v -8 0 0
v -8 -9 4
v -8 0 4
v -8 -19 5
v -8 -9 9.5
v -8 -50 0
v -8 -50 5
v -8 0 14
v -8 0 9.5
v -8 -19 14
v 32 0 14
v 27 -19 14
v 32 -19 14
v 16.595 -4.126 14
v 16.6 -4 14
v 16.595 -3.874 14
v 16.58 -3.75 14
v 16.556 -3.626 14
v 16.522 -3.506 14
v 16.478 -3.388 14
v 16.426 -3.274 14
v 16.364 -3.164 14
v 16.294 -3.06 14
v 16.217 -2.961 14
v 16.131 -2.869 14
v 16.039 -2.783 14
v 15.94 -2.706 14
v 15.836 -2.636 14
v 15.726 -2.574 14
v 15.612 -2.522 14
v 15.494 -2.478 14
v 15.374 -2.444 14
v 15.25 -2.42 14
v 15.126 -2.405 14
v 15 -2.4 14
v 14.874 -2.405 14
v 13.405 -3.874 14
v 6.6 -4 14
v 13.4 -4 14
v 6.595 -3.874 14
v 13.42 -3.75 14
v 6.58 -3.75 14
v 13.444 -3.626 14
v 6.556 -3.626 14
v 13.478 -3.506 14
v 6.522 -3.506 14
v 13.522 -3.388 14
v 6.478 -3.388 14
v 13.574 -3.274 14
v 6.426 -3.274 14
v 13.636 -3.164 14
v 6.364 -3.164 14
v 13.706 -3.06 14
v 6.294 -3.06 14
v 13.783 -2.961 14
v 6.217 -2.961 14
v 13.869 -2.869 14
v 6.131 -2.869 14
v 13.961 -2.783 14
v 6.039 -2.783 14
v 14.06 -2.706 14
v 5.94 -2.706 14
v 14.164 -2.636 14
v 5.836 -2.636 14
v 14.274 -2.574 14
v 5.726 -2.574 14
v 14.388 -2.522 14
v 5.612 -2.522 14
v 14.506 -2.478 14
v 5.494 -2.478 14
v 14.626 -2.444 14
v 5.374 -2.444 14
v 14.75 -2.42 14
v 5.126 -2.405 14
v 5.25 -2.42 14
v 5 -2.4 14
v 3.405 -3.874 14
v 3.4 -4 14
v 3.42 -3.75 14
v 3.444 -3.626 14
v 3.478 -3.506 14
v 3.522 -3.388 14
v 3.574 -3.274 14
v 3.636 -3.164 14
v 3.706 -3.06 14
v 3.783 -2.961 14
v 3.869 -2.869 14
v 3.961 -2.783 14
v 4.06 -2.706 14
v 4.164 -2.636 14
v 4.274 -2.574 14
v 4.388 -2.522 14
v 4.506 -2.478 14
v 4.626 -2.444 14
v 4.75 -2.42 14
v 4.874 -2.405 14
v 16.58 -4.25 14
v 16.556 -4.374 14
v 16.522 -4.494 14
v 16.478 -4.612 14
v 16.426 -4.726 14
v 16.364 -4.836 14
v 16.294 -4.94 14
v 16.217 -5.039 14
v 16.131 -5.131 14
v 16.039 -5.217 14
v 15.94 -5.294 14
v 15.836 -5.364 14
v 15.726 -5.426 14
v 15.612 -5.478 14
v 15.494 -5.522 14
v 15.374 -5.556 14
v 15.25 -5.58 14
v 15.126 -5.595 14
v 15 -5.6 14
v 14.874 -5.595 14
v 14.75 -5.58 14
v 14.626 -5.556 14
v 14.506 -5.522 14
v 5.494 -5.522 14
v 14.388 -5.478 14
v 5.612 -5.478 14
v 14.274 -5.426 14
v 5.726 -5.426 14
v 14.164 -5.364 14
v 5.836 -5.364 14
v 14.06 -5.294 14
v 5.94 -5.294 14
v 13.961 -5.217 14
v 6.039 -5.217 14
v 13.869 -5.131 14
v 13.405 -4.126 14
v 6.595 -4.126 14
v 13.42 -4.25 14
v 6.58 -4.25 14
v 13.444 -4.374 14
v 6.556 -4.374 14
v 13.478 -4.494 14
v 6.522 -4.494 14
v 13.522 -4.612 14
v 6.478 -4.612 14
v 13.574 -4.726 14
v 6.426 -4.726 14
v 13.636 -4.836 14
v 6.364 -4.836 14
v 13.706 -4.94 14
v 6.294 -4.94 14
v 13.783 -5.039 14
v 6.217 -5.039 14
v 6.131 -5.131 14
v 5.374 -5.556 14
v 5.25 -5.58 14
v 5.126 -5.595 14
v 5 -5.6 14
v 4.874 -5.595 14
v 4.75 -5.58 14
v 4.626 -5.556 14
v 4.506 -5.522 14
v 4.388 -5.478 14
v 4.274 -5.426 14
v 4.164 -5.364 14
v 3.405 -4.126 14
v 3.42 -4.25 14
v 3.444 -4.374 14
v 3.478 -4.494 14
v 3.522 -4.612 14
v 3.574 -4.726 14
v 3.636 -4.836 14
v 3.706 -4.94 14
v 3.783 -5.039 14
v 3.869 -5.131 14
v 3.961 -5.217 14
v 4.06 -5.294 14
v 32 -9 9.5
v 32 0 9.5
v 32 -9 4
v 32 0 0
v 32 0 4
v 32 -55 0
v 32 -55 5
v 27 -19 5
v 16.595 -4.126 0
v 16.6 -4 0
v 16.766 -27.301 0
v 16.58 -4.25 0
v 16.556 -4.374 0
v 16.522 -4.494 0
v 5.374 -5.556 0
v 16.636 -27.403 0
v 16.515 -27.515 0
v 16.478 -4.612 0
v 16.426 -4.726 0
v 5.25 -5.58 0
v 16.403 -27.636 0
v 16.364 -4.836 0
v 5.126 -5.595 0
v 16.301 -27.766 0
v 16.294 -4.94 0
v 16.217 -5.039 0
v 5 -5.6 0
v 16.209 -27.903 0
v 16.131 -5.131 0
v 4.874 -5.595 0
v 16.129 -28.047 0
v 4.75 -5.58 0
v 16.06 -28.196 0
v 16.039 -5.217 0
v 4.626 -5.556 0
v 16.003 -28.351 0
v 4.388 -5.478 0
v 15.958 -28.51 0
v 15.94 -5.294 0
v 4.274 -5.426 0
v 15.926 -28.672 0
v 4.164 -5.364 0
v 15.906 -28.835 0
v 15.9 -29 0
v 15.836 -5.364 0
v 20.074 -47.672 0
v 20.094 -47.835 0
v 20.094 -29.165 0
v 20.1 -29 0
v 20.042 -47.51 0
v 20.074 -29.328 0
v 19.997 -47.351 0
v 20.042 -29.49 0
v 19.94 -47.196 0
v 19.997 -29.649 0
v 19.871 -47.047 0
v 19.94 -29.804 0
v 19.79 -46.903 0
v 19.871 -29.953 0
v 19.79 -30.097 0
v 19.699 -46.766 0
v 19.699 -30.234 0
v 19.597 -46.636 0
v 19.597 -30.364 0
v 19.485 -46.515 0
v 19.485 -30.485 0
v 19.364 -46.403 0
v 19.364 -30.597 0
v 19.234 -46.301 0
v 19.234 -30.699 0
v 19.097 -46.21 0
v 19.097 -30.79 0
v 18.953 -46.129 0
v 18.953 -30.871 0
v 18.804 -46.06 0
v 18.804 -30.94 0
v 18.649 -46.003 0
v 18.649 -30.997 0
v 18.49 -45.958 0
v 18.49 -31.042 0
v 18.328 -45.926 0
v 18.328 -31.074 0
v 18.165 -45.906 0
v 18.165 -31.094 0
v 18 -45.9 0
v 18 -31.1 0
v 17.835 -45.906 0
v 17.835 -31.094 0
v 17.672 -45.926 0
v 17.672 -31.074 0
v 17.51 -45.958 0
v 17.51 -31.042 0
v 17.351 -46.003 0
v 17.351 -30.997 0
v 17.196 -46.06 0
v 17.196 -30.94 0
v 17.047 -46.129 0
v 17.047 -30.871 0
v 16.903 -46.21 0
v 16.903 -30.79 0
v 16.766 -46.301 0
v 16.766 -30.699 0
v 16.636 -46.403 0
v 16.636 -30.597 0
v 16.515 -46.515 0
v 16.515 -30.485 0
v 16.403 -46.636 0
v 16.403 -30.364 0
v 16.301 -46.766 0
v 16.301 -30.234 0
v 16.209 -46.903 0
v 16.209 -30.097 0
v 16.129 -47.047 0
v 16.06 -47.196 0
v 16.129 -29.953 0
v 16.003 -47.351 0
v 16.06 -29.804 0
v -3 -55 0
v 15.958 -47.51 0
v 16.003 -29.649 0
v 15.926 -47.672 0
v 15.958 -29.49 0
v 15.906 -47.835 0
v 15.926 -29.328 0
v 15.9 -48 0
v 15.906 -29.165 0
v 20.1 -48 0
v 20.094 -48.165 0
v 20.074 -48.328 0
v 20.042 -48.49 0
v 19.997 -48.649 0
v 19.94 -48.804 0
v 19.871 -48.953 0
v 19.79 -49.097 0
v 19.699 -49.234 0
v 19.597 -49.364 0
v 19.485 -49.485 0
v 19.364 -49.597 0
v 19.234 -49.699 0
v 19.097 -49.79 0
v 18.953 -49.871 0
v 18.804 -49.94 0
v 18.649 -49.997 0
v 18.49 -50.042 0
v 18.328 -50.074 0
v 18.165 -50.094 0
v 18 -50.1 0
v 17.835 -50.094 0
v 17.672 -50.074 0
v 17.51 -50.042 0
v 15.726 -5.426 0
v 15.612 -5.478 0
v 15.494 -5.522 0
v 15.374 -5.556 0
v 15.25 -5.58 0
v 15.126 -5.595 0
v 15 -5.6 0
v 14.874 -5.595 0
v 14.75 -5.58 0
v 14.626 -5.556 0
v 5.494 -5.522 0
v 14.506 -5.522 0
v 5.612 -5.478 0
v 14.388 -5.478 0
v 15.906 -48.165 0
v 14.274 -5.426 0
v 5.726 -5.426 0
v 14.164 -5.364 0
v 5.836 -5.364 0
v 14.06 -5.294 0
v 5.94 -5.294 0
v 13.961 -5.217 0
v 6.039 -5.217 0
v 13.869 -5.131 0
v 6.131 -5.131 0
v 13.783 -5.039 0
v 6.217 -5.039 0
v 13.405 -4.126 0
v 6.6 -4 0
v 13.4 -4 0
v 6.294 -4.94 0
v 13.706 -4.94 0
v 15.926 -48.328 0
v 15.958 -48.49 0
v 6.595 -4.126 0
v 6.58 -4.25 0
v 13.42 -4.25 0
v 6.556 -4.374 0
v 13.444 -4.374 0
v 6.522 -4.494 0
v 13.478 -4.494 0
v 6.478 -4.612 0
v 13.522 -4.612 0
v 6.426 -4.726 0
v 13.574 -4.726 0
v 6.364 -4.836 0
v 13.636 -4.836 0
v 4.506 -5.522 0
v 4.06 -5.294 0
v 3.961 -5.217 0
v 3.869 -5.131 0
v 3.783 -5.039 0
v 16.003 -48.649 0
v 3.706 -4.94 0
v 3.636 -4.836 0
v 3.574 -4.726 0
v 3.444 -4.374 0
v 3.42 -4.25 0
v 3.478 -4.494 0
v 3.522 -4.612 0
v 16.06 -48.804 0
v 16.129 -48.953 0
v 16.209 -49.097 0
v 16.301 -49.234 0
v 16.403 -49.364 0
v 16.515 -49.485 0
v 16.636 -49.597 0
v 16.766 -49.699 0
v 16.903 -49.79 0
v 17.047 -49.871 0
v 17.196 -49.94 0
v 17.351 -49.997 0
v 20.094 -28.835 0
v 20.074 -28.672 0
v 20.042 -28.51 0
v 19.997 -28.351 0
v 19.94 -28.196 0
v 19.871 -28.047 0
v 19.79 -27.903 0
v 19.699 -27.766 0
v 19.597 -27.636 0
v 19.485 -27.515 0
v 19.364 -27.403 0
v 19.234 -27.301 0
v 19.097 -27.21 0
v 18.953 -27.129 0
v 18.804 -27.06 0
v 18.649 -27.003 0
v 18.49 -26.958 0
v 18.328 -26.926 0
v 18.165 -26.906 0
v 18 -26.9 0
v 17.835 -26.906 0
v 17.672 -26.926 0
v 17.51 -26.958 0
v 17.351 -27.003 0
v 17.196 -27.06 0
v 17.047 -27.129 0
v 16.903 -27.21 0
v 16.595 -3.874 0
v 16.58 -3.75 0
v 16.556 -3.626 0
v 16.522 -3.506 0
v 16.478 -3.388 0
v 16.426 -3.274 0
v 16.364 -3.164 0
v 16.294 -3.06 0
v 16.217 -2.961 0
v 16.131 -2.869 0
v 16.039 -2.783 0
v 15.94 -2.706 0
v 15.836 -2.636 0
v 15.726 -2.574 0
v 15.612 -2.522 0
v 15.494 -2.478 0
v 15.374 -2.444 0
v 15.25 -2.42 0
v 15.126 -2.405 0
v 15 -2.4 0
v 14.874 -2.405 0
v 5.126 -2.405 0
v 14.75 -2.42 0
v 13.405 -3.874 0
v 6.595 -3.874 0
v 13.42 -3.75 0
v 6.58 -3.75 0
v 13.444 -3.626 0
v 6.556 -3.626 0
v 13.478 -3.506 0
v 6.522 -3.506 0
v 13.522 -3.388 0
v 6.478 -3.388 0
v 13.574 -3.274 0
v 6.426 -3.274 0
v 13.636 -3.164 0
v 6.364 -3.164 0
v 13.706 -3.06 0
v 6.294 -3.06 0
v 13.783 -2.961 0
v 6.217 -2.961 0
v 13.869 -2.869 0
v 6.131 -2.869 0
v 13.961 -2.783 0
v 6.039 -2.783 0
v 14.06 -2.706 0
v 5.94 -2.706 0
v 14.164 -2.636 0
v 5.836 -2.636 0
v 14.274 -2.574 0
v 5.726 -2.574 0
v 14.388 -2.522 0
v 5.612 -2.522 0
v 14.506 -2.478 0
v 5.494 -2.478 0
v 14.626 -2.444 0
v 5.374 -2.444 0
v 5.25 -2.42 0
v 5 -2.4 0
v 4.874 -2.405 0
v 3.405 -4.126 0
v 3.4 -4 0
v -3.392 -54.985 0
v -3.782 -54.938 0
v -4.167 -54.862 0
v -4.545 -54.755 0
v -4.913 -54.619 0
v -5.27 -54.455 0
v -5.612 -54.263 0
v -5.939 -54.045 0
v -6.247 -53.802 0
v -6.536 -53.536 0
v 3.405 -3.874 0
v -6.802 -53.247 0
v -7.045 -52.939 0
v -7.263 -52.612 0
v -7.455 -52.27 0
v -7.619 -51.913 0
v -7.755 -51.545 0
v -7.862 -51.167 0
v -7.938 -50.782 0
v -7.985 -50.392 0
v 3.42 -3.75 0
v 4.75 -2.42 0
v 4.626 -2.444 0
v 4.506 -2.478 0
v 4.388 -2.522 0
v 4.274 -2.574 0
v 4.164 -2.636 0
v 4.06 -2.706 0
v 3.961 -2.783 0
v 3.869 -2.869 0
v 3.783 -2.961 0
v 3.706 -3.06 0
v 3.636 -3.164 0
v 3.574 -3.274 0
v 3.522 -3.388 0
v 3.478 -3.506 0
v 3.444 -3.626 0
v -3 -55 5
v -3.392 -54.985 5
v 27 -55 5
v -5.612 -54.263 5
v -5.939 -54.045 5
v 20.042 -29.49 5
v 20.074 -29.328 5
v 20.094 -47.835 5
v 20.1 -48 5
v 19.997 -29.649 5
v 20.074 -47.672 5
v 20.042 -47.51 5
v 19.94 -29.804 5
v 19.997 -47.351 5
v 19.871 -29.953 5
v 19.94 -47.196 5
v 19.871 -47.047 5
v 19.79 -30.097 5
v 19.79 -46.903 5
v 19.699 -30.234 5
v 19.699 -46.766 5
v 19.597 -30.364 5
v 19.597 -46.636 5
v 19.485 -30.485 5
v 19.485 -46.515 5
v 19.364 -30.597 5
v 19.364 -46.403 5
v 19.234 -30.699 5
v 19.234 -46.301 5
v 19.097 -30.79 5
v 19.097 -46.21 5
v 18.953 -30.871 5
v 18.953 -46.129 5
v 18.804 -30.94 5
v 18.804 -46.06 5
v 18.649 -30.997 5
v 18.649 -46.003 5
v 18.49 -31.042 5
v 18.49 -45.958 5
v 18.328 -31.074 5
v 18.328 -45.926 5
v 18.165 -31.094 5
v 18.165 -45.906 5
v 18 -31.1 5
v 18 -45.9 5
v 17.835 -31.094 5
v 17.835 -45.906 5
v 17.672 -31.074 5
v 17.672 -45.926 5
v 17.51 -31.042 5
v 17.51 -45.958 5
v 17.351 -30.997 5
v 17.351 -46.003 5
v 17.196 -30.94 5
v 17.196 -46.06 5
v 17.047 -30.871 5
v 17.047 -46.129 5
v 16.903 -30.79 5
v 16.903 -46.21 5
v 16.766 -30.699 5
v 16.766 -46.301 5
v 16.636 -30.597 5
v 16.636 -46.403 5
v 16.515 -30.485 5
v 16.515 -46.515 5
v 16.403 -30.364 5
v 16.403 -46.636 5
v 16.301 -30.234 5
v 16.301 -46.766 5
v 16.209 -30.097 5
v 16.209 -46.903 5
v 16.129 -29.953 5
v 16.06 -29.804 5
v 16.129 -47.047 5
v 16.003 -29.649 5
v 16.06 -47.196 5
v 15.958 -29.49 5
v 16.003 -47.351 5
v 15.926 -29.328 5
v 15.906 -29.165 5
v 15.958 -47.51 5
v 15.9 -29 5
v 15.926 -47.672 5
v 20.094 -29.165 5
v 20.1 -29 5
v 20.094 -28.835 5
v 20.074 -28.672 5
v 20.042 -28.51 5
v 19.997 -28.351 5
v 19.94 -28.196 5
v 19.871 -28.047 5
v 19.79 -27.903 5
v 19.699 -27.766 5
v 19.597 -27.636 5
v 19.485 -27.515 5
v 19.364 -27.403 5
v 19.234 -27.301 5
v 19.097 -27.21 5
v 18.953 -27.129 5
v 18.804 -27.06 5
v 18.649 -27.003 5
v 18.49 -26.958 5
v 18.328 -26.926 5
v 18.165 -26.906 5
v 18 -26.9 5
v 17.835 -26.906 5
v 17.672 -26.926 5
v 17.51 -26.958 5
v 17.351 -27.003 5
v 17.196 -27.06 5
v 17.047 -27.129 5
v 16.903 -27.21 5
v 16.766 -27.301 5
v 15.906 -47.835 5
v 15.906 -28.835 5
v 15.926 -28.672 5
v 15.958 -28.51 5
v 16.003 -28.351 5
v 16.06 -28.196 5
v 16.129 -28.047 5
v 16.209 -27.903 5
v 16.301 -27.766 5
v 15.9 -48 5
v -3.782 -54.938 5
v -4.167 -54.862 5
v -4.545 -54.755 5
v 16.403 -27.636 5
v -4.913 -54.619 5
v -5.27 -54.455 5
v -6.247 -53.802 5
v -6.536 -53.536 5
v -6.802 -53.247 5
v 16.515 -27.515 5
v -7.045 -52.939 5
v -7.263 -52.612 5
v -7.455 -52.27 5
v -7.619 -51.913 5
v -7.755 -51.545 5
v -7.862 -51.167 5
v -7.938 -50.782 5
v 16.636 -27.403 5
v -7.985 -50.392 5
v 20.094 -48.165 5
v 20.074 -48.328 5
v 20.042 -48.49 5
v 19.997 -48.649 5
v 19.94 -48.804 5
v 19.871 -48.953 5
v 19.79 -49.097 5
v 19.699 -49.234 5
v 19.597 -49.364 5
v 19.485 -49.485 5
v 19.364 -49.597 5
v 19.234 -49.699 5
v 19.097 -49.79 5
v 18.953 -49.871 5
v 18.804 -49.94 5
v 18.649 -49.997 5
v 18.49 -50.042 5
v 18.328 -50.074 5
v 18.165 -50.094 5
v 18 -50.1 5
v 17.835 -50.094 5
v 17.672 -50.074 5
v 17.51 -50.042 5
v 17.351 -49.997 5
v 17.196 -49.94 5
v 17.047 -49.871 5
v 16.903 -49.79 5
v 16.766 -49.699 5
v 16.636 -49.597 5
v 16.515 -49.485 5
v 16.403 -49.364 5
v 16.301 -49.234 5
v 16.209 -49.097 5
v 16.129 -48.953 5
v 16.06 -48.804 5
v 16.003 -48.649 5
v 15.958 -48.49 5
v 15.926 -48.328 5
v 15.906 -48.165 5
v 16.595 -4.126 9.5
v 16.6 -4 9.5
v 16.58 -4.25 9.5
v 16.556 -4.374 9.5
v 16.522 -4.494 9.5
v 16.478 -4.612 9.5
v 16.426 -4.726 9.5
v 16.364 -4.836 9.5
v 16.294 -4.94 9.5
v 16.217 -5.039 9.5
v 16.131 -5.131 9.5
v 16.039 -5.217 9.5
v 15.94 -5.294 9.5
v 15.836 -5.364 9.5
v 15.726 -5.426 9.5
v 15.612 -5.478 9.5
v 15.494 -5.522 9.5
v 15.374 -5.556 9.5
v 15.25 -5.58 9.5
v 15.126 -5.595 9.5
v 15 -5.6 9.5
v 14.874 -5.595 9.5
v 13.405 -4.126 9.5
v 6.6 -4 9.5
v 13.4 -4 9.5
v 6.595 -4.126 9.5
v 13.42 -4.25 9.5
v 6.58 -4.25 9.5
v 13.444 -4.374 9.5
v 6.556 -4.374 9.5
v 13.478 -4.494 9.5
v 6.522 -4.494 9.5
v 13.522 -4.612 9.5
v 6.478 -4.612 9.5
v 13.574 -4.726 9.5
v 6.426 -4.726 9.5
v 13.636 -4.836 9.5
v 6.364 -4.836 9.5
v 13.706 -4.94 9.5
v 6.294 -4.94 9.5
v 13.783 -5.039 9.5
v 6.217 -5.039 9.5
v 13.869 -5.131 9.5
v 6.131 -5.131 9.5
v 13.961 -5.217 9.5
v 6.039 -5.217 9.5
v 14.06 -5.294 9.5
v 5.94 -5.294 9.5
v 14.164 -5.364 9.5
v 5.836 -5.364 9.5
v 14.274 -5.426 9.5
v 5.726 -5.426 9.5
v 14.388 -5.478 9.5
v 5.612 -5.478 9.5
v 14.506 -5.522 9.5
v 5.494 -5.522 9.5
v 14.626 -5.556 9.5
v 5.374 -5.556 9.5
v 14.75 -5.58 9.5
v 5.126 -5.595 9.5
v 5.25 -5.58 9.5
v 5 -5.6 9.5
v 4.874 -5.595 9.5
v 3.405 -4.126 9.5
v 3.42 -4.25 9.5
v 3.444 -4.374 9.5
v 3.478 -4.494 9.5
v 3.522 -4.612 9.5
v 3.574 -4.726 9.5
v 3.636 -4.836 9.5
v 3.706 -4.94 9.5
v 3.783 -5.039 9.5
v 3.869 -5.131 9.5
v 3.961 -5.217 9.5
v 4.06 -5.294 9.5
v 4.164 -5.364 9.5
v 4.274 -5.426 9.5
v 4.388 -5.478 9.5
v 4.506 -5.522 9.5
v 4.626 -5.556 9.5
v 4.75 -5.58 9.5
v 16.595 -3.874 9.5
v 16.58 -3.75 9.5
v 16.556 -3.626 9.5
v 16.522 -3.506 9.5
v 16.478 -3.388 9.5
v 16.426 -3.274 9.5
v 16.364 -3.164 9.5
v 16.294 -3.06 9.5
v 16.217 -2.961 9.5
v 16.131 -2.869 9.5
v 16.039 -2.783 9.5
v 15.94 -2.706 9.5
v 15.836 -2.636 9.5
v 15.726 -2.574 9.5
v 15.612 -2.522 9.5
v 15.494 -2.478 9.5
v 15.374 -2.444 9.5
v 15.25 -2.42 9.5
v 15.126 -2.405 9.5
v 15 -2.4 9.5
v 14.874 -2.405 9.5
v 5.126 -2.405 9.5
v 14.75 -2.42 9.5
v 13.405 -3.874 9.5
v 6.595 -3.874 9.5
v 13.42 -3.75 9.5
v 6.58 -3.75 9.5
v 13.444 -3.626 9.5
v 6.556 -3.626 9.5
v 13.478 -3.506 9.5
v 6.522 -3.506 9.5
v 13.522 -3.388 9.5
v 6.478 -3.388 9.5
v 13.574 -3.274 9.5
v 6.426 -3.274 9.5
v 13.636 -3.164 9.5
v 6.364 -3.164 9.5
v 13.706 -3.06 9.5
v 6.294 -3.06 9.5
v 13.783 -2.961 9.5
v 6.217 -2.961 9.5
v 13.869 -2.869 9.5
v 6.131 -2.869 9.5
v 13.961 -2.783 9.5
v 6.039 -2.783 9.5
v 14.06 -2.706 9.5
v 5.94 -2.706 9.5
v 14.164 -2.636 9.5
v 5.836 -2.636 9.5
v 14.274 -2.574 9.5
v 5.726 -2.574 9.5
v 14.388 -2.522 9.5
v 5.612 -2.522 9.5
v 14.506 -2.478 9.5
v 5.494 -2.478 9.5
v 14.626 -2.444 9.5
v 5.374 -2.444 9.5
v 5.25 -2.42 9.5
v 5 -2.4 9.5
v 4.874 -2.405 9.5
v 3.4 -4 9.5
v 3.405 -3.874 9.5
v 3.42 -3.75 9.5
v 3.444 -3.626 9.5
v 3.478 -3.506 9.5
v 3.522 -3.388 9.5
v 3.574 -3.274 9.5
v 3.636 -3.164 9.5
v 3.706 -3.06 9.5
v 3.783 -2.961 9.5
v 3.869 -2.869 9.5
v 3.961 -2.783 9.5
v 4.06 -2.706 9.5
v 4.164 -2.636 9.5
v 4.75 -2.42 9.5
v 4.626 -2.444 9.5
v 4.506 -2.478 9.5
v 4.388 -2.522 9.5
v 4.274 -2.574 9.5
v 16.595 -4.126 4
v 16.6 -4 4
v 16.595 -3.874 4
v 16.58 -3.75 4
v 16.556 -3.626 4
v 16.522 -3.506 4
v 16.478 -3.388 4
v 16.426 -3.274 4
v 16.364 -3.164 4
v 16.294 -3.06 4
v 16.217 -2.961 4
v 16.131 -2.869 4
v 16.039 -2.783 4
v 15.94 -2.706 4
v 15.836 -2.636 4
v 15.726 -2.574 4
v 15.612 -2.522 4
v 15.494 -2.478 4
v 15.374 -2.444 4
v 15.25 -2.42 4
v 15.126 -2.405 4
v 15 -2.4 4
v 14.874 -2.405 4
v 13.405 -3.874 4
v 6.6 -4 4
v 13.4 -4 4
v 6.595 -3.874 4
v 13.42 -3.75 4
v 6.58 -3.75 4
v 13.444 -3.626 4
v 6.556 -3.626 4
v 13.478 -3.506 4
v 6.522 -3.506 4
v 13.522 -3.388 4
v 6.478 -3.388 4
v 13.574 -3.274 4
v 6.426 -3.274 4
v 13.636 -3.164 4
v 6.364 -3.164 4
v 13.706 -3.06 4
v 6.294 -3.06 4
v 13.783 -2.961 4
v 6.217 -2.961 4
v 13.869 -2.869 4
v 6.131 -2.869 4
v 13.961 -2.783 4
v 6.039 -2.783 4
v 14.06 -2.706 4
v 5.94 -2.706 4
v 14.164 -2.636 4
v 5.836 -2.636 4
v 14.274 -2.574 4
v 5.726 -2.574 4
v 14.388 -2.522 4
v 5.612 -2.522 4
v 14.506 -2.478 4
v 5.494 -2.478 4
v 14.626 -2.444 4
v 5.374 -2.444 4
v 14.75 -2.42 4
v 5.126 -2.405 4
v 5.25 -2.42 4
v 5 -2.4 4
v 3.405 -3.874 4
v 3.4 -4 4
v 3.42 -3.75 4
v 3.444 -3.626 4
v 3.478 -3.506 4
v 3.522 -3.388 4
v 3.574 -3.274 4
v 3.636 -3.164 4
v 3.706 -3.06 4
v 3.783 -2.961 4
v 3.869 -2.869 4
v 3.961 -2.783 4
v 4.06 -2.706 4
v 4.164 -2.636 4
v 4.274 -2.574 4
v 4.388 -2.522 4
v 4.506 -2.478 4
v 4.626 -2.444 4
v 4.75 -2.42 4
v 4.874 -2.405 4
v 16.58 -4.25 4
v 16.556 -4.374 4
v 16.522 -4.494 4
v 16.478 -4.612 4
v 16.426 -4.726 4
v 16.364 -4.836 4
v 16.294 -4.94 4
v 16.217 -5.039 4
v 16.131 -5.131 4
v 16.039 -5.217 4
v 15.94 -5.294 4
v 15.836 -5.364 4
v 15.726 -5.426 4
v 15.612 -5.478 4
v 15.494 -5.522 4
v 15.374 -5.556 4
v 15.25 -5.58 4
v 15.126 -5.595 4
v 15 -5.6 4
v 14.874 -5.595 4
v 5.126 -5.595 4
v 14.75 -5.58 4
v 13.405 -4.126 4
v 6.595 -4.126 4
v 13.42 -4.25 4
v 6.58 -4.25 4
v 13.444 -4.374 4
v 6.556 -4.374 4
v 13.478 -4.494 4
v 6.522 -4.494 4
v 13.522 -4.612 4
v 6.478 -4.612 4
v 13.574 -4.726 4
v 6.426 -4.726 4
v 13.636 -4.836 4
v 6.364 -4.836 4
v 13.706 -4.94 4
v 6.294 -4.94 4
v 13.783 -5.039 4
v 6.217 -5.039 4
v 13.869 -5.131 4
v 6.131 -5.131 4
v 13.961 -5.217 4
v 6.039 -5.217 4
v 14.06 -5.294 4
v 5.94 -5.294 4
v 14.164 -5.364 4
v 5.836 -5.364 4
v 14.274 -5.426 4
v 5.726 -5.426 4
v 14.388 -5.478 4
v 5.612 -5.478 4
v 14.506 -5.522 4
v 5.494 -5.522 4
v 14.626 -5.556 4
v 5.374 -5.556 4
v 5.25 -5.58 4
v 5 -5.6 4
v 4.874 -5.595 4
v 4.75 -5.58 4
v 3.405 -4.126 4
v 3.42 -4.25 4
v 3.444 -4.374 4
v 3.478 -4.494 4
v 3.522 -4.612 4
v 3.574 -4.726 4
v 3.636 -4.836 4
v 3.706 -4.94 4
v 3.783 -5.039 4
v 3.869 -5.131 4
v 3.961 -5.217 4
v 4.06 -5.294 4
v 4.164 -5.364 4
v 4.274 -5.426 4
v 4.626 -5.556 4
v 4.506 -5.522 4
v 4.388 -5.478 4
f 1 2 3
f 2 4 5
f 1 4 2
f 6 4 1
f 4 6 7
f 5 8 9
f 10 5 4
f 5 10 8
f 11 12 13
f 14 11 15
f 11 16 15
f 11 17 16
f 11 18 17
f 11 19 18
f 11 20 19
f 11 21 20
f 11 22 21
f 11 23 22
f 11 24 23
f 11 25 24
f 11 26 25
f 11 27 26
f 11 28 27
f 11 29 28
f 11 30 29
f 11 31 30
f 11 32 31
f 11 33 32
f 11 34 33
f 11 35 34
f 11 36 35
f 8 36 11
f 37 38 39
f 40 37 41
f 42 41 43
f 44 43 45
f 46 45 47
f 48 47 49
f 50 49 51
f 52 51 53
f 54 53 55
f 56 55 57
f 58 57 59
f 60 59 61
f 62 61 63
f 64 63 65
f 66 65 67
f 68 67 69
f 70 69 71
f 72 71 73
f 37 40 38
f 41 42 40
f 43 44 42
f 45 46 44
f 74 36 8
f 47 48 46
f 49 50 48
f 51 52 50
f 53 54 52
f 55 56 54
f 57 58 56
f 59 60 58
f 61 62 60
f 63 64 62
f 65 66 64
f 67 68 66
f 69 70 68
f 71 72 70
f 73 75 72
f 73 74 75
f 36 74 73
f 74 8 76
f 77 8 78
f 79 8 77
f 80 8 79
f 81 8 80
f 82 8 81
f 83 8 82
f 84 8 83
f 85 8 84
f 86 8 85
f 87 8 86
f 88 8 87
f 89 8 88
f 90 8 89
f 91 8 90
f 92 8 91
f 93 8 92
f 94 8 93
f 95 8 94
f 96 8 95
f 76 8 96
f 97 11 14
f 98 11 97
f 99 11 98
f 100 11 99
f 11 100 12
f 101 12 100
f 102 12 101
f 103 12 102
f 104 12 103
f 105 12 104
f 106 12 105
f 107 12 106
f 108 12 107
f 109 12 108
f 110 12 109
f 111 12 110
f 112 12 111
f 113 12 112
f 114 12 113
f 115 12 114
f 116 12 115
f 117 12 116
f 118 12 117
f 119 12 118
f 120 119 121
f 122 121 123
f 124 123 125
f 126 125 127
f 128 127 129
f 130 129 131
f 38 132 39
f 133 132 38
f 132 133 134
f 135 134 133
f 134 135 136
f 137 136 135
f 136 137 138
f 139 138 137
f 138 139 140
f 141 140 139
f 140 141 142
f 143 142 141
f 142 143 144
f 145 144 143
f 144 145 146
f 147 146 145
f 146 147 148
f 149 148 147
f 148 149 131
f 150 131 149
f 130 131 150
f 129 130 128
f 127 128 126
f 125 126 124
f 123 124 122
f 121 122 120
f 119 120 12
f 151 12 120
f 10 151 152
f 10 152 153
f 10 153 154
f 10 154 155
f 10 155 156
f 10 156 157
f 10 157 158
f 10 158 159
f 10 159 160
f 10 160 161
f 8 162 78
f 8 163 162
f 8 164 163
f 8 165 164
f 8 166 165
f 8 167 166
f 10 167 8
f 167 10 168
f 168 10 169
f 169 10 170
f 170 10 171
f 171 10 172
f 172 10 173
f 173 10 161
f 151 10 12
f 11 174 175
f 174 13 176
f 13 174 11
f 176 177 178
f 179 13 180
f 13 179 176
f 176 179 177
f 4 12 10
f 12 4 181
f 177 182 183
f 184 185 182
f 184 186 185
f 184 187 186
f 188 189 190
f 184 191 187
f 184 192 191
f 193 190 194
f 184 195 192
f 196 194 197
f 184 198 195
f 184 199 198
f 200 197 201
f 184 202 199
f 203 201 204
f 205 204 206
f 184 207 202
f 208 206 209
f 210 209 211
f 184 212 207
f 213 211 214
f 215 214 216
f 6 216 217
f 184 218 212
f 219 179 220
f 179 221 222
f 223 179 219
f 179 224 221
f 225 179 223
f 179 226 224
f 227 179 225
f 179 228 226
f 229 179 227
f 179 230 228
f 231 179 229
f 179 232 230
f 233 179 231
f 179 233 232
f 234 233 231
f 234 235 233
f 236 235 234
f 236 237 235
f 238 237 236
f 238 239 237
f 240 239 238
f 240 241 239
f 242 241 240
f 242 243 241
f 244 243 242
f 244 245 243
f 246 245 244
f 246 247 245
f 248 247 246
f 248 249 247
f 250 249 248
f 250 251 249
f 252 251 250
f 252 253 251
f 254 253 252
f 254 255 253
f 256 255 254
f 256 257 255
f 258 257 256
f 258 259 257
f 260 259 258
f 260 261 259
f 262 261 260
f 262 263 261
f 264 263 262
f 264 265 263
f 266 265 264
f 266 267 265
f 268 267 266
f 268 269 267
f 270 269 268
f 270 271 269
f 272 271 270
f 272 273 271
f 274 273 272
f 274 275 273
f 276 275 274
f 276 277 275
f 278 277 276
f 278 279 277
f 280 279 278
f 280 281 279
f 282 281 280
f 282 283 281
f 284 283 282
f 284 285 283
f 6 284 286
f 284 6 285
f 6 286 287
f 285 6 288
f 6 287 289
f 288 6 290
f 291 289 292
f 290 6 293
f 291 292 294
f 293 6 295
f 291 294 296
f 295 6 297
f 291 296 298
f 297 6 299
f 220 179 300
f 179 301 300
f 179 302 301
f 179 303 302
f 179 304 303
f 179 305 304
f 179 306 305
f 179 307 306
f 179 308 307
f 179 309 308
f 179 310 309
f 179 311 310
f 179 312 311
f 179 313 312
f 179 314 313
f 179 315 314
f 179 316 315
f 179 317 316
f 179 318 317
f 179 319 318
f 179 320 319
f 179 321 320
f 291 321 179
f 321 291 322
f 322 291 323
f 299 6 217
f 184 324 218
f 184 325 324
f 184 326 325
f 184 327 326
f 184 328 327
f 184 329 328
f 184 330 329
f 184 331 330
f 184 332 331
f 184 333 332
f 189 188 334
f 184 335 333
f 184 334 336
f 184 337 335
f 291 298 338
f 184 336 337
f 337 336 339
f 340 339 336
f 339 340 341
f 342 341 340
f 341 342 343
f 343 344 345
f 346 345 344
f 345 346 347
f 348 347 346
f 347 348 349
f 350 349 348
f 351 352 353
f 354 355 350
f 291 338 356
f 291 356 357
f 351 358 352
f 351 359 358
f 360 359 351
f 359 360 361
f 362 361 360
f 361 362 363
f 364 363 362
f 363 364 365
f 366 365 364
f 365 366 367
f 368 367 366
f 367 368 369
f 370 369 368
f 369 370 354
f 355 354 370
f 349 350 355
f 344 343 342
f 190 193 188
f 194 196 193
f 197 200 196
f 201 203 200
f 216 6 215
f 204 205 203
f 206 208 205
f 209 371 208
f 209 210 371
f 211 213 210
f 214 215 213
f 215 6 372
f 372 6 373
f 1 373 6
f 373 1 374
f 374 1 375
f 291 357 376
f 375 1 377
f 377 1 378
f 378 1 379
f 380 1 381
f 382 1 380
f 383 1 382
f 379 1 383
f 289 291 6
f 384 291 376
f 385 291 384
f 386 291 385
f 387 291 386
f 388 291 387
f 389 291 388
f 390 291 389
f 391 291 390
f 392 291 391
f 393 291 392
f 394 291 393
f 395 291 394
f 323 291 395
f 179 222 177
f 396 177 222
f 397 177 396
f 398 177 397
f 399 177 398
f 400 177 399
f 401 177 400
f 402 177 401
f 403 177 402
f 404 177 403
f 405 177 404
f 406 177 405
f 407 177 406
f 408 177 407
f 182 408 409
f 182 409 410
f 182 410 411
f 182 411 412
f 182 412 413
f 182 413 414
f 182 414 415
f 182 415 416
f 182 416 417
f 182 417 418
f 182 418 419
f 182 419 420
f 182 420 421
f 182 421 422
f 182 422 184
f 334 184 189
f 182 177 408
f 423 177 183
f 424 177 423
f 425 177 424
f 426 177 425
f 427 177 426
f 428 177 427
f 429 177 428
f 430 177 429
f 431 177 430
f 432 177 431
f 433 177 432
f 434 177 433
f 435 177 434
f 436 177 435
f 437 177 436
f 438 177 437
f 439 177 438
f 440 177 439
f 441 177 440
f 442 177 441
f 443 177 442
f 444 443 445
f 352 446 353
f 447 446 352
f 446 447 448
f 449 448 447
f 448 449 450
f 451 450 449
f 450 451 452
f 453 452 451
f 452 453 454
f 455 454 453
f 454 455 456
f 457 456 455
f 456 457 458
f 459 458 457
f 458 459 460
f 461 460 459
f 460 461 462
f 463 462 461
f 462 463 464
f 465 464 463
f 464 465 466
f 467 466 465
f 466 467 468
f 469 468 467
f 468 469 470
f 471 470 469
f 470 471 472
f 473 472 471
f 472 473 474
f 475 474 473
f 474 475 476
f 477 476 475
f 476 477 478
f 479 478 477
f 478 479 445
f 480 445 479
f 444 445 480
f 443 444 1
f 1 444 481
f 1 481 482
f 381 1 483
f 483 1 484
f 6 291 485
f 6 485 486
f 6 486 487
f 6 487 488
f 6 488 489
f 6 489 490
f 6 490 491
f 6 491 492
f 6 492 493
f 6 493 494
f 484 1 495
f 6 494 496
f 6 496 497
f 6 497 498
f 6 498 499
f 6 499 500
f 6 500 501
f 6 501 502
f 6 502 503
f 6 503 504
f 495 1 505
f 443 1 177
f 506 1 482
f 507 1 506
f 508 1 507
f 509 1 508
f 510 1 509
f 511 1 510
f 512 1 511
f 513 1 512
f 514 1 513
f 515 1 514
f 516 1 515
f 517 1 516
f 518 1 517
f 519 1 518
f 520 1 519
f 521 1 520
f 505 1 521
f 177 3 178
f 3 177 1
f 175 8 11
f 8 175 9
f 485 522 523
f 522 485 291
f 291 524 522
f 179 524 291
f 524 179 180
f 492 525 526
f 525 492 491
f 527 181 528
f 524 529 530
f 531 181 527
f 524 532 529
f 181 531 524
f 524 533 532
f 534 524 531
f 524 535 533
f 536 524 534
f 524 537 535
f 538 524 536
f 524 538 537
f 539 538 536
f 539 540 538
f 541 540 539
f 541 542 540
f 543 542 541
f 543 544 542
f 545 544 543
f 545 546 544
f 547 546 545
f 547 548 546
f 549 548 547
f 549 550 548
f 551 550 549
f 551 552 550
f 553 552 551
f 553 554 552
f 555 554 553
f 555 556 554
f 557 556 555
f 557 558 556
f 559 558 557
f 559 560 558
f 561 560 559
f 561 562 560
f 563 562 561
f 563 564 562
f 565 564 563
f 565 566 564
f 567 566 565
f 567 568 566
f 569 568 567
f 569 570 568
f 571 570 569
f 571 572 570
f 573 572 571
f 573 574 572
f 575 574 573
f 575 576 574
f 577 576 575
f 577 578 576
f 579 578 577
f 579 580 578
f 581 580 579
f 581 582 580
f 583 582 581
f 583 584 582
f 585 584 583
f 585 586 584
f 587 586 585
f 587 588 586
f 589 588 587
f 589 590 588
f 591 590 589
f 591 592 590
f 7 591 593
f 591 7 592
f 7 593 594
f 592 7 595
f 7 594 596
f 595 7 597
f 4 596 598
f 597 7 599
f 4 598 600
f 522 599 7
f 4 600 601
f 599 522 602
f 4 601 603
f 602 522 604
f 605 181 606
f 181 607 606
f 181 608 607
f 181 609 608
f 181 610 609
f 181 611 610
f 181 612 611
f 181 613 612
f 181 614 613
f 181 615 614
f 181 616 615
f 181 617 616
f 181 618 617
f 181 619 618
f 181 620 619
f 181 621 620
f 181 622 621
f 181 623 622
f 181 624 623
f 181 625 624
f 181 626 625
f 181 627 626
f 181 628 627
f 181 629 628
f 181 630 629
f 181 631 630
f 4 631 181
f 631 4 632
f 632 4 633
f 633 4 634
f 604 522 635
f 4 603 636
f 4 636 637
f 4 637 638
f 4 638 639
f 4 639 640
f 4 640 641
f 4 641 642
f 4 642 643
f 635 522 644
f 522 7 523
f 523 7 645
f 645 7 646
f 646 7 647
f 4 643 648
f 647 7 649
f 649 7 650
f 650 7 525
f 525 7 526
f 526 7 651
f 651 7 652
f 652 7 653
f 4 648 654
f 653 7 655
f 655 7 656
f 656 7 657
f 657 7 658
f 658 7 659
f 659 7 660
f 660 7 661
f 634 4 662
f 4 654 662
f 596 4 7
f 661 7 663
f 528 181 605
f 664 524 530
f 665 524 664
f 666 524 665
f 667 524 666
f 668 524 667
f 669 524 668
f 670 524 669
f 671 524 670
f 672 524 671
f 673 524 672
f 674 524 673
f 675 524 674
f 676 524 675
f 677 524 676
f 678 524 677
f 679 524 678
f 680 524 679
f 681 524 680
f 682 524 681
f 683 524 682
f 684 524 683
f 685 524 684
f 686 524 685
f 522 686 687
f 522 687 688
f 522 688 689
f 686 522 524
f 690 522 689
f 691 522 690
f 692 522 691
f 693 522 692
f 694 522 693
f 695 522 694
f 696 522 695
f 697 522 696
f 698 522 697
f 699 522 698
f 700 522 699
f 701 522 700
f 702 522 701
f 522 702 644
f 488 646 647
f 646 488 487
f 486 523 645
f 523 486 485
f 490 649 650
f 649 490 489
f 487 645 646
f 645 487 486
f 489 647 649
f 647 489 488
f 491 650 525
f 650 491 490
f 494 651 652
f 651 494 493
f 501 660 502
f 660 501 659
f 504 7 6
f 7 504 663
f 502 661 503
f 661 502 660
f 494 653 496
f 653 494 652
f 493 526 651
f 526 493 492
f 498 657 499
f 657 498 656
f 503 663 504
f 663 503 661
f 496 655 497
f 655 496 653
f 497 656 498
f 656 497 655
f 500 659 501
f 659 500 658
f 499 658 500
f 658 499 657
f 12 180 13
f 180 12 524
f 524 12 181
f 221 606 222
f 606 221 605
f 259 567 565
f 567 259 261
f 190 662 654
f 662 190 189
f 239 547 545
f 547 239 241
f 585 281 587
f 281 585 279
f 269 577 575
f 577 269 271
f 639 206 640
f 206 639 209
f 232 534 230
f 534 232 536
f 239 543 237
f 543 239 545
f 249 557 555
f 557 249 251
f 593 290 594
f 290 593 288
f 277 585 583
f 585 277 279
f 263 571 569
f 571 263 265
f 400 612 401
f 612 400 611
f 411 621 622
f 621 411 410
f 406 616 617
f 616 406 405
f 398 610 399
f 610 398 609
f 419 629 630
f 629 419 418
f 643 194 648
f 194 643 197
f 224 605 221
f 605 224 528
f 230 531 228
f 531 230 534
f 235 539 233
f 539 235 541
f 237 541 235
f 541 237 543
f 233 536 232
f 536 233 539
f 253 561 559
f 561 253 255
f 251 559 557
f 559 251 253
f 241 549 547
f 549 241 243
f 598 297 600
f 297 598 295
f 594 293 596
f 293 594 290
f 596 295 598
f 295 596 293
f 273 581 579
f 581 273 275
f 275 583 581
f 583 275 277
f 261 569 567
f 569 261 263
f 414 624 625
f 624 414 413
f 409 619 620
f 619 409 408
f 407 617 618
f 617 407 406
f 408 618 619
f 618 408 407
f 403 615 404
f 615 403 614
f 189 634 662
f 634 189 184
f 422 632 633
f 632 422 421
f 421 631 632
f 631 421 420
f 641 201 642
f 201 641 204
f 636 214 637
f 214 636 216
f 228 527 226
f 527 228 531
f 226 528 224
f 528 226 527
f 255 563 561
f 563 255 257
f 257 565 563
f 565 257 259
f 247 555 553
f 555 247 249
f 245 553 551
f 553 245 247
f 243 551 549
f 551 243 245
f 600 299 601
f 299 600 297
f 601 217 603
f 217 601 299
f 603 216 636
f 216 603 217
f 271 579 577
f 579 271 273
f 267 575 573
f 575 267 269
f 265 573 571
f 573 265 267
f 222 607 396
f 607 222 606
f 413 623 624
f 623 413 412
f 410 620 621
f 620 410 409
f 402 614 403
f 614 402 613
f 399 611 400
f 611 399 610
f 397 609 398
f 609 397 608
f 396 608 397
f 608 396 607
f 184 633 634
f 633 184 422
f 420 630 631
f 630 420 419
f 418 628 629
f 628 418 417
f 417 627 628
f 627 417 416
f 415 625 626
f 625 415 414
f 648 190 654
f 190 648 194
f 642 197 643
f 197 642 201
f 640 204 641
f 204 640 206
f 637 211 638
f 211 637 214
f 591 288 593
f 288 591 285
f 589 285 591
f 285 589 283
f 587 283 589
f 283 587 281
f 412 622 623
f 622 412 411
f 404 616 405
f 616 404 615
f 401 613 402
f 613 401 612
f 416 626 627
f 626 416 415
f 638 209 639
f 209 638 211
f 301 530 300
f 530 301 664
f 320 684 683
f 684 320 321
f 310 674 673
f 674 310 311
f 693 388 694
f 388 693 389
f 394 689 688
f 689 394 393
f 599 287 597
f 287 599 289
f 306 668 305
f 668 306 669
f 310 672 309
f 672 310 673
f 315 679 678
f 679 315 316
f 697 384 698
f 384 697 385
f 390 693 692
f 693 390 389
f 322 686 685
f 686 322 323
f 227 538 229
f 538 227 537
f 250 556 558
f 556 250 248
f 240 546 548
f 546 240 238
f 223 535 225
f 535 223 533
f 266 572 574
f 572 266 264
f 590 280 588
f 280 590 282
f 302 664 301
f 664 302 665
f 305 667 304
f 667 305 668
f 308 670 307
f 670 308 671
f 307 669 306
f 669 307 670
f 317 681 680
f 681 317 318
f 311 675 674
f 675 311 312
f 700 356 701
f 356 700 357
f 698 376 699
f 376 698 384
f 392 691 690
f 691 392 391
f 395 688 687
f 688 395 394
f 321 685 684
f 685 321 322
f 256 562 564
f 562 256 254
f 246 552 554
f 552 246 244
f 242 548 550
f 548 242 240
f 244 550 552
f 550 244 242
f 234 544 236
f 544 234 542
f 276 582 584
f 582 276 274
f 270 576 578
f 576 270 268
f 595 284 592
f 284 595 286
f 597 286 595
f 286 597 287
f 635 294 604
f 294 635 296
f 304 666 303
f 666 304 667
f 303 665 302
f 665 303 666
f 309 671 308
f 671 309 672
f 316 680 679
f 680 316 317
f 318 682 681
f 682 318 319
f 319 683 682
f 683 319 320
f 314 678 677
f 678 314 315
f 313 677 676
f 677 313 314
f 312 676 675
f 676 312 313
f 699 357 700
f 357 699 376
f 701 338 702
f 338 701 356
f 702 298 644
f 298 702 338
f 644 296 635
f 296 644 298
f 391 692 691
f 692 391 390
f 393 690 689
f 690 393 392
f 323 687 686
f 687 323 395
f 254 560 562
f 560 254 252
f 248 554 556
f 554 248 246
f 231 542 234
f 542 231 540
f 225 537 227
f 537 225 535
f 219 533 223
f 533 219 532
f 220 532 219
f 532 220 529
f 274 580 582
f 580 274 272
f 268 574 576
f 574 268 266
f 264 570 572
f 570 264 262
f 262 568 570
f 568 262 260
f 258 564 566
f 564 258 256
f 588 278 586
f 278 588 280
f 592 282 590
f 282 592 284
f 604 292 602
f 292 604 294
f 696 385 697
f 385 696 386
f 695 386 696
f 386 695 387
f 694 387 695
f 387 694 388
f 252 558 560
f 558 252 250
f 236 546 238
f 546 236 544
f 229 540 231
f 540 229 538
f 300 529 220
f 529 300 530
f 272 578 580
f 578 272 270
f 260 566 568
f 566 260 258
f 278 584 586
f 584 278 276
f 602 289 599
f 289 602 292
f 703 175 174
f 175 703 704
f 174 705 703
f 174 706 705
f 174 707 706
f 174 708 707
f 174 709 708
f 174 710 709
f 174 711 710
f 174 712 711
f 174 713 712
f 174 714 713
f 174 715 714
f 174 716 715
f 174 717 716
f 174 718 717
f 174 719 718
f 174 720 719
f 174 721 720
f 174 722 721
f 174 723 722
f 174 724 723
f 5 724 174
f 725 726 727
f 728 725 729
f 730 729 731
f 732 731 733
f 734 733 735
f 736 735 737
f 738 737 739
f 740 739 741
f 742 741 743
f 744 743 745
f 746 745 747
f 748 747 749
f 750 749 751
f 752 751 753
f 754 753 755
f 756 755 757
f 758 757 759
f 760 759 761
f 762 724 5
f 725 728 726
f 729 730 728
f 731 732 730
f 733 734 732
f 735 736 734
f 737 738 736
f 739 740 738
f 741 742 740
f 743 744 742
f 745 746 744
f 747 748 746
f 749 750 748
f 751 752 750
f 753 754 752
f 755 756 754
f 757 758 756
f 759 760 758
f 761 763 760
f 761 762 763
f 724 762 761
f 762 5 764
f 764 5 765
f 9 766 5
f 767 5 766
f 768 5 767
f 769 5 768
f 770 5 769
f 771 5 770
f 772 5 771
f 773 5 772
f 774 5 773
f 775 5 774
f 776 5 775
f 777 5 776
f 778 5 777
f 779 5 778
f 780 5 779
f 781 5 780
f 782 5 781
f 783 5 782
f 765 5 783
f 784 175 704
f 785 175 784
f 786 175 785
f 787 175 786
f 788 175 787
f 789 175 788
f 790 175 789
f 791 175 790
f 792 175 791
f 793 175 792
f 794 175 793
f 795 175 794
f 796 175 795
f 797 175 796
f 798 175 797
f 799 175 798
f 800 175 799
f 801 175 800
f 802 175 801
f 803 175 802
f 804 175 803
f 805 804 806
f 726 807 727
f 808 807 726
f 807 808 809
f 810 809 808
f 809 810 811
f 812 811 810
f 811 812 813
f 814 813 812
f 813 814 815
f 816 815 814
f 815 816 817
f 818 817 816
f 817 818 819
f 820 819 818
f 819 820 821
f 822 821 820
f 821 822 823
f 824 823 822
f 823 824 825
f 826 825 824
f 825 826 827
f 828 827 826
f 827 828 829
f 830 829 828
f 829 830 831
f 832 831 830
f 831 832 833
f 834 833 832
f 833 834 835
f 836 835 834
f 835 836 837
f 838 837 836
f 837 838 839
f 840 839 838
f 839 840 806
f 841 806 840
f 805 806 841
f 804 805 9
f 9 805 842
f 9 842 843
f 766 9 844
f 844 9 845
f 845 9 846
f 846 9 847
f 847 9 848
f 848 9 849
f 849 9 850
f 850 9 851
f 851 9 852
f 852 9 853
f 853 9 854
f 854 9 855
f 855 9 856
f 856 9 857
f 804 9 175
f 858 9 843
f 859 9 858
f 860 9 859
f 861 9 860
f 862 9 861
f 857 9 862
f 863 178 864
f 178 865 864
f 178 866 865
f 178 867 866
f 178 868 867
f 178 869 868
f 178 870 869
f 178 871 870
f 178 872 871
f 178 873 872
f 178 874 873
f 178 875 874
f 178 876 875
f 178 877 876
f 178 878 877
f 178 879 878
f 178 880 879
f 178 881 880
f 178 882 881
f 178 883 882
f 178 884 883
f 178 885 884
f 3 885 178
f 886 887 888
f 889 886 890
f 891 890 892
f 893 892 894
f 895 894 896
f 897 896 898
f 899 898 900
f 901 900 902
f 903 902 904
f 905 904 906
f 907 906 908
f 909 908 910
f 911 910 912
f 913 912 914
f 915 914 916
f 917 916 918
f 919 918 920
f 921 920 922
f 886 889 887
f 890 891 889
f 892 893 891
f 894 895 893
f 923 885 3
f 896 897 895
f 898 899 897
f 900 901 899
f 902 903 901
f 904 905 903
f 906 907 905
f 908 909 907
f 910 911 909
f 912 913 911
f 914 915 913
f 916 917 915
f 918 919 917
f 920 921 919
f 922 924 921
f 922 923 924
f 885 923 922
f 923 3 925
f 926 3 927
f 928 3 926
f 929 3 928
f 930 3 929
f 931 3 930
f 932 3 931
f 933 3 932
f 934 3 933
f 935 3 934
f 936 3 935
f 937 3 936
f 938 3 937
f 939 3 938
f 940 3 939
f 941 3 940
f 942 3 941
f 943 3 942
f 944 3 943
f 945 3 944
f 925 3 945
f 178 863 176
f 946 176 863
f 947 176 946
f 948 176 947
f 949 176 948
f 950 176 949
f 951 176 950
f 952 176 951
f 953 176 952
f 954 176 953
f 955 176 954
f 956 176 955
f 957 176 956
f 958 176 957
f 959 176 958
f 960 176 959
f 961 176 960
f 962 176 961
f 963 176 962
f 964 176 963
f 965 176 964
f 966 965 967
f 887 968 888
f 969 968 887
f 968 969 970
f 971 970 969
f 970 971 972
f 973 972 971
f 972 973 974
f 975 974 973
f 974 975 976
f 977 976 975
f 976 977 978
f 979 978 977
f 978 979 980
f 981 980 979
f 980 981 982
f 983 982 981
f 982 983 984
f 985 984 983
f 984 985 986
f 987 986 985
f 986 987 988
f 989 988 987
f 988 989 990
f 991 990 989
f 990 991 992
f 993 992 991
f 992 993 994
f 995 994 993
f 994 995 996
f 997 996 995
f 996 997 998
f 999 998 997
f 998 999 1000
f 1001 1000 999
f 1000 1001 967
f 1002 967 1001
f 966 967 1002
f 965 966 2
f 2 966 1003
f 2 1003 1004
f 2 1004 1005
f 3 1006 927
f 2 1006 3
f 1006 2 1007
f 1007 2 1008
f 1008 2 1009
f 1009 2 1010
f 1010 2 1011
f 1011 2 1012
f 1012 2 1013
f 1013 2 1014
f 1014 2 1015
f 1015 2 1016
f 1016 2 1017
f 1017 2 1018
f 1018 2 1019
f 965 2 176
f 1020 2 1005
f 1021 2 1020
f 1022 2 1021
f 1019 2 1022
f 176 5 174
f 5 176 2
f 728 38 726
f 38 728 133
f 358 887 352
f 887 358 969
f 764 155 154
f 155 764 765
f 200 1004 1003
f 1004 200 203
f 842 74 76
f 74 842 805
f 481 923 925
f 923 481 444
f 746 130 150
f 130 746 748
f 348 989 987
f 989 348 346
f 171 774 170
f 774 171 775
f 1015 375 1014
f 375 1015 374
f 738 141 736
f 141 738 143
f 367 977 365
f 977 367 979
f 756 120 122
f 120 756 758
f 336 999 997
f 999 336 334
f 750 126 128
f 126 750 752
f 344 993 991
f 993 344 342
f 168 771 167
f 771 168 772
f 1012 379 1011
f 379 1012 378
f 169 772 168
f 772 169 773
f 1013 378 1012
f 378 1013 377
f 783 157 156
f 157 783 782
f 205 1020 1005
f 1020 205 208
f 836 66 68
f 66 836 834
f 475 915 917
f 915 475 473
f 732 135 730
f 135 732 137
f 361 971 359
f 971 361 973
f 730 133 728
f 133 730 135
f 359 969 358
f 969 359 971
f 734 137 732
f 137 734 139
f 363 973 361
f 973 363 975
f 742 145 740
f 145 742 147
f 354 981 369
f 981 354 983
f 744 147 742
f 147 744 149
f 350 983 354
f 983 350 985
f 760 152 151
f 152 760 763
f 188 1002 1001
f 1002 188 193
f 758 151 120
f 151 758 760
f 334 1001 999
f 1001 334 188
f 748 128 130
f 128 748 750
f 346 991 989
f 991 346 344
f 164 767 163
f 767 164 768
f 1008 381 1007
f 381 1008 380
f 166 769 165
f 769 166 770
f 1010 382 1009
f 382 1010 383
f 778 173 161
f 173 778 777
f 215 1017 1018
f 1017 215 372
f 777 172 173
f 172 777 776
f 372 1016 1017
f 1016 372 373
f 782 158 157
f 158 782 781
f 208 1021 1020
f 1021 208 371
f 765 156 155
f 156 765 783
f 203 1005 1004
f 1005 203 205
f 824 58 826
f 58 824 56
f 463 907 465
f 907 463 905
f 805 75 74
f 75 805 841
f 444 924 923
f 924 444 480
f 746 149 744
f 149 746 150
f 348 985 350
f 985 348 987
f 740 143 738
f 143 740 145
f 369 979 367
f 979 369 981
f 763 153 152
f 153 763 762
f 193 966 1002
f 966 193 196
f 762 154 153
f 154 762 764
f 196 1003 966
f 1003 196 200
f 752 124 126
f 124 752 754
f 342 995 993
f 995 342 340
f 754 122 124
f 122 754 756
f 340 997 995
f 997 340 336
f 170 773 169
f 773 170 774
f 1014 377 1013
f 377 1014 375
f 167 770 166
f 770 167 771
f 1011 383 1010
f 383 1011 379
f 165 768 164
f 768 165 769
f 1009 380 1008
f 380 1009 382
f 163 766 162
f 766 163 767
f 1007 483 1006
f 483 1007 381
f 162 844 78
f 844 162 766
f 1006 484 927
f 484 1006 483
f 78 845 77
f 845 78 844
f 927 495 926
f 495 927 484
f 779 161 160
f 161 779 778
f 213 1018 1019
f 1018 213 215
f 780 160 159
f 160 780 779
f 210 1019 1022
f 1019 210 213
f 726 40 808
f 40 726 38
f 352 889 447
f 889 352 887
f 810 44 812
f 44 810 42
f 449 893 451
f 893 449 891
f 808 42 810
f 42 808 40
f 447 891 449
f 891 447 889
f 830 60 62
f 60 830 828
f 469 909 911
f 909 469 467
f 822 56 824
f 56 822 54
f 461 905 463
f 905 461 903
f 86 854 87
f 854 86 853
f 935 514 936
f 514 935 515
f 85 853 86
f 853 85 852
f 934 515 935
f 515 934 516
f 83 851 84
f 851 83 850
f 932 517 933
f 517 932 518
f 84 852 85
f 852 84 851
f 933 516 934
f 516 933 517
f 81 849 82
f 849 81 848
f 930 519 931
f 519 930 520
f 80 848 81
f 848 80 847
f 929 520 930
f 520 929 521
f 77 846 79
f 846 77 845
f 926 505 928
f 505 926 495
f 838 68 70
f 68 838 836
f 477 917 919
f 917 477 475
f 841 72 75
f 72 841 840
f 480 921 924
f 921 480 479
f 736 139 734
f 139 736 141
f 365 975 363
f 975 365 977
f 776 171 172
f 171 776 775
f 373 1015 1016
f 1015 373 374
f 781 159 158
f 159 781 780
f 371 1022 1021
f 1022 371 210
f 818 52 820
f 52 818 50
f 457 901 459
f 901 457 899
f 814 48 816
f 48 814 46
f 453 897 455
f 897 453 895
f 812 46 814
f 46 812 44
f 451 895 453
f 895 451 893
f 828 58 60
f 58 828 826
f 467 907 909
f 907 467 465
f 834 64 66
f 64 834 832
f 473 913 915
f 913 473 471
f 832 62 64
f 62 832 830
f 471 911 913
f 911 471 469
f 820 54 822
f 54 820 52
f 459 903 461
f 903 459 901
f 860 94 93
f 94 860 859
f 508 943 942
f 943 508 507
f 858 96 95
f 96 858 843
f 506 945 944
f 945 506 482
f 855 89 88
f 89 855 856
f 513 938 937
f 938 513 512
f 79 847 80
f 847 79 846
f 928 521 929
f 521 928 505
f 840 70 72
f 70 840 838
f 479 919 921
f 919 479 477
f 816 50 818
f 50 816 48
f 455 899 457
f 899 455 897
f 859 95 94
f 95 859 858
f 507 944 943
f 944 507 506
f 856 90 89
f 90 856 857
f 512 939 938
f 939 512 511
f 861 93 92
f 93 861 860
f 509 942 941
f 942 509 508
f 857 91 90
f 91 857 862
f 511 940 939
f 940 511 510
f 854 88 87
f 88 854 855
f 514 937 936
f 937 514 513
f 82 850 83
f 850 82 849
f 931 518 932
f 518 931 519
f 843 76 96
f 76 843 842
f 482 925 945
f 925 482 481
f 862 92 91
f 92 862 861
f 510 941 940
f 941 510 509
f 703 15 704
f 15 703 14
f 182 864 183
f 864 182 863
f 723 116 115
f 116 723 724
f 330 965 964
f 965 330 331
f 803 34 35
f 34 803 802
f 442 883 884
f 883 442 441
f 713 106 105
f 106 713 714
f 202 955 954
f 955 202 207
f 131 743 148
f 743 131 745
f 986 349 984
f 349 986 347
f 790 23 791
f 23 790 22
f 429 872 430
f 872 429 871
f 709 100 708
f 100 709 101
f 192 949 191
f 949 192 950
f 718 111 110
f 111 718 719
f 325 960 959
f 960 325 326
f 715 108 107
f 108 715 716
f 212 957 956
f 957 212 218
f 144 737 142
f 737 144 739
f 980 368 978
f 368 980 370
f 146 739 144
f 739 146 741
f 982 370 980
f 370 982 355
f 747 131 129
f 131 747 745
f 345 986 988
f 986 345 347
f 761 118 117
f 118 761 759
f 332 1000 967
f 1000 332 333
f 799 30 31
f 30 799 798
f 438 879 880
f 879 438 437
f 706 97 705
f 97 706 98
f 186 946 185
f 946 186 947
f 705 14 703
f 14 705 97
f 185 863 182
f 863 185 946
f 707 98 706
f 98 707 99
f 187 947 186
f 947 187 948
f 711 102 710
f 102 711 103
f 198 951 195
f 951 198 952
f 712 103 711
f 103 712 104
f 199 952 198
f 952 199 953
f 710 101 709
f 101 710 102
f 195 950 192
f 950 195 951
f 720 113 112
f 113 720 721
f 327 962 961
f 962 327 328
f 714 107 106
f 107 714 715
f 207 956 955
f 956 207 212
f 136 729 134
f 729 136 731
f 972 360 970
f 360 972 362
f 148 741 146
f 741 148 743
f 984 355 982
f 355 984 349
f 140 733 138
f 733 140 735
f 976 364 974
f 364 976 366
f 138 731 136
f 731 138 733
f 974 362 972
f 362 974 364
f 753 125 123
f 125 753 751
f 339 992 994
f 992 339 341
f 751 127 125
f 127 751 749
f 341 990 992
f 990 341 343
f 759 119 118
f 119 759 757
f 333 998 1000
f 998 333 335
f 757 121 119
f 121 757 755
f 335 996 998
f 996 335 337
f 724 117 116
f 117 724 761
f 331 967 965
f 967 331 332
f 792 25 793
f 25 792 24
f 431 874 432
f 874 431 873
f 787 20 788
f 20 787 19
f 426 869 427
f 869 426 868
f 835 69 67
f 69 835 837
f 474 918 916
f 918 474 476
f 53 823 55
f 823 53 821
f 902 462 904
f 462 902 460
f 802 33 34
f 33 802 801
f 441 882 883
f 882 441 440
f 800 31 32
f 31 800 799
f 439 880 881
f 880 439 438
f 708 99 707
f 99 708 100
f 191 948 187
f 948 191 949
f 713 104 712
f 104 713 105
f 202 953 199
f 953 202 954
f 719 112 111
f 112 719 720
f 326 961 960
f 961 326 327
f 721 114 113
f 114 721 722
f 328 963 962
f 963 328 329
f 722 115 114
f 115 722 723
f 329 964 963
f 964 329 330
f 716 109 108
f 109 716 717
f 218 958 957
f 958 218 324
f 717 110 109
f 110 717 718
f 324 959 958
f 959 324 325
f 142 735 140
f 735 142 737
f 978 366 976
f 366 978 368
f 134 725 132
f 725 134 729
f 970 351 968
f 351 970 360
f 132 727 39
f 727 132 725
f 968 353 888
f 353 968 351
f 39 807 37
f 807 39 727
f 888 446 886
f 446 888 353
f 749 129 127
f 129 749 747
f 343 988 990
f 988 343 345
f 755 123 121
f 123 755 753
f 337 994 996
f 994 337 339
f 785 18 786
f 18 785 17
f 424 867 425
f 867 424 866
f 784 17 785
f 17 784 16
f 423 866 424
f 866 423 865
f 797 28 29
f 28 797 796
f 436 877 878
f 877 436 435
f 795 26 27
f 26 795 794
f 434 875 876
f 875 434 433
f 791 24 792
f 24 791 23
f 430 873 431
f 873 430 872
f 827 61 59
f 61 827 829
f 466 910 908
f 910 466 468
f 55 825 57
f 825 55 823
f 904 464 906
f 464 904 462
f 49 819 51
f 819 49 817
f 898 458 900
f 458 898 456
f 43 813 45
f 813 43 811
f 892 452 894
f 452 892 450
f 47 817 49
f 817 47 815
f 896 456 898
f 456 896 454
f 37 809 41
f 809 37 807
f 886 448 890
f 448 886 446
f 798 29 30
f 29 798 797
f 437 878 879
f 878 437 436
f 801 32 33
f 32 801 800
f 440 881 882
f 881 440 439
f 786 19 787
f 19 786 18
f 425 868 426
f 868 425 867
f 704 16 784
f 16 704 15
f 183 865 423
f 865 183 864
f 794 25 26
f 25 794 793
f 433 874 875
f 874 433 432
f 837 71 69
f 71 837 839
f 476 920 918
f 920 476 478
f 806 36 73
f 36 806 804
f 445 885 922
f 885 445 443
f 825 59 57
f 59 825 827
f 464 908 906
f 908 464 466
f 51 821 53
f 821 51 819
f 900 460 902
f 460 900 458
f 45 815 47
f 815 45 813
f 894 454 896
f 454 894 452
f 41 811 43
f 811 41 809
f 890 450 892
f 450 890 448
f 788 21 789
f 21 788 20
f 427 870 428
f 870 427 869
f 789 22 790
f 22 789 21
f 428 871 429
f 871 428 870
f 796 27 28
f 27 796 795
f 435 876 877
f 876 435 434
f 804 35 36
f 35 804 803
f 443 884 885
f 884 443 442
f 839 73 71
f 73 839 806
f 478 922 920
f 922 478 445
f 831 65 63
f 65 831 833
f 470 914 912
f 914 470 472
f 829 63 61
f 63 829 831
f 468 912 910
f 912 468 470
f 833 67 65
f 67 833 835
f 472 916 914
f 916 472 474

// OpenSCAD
$fn=80;
thick=14;

mirror([0,1,0]) difference() {
   union() {
      translate([-8,0,0]) cube([40,19,thick]);
      hull() {
         translate([-8+20,0,0]) cube([20, 55,5]);
         translate([-8,0,0]) cube([20, 31,5]);
         translate([-3,55-5,0]) cylinder(h=5,r=5);
      }

      translate([27,0,0]) rotate([90,0,90]) linear_extrude(height=5)
         polygon(points=[[19,0], [19,thick],[55,5], [55,0]]);
   }

   // translate([18,23,-0.5]) cylinder(d=4.2,h=10);
   translate([18,29,-0.5]) cylinder(d=4.2,h=10);
   translate([18,48,-0.5]) cylinder(d=4.2,h=10);

   // cutout for carriage wall
   translate([-9,-1,4]) cube([50,10,5.5]);

   translate([5,4,-1]) cylinder(d=3.2,h=20);
   translate([15,4,-1]) cylinder(d=3.2,h=20);

}
